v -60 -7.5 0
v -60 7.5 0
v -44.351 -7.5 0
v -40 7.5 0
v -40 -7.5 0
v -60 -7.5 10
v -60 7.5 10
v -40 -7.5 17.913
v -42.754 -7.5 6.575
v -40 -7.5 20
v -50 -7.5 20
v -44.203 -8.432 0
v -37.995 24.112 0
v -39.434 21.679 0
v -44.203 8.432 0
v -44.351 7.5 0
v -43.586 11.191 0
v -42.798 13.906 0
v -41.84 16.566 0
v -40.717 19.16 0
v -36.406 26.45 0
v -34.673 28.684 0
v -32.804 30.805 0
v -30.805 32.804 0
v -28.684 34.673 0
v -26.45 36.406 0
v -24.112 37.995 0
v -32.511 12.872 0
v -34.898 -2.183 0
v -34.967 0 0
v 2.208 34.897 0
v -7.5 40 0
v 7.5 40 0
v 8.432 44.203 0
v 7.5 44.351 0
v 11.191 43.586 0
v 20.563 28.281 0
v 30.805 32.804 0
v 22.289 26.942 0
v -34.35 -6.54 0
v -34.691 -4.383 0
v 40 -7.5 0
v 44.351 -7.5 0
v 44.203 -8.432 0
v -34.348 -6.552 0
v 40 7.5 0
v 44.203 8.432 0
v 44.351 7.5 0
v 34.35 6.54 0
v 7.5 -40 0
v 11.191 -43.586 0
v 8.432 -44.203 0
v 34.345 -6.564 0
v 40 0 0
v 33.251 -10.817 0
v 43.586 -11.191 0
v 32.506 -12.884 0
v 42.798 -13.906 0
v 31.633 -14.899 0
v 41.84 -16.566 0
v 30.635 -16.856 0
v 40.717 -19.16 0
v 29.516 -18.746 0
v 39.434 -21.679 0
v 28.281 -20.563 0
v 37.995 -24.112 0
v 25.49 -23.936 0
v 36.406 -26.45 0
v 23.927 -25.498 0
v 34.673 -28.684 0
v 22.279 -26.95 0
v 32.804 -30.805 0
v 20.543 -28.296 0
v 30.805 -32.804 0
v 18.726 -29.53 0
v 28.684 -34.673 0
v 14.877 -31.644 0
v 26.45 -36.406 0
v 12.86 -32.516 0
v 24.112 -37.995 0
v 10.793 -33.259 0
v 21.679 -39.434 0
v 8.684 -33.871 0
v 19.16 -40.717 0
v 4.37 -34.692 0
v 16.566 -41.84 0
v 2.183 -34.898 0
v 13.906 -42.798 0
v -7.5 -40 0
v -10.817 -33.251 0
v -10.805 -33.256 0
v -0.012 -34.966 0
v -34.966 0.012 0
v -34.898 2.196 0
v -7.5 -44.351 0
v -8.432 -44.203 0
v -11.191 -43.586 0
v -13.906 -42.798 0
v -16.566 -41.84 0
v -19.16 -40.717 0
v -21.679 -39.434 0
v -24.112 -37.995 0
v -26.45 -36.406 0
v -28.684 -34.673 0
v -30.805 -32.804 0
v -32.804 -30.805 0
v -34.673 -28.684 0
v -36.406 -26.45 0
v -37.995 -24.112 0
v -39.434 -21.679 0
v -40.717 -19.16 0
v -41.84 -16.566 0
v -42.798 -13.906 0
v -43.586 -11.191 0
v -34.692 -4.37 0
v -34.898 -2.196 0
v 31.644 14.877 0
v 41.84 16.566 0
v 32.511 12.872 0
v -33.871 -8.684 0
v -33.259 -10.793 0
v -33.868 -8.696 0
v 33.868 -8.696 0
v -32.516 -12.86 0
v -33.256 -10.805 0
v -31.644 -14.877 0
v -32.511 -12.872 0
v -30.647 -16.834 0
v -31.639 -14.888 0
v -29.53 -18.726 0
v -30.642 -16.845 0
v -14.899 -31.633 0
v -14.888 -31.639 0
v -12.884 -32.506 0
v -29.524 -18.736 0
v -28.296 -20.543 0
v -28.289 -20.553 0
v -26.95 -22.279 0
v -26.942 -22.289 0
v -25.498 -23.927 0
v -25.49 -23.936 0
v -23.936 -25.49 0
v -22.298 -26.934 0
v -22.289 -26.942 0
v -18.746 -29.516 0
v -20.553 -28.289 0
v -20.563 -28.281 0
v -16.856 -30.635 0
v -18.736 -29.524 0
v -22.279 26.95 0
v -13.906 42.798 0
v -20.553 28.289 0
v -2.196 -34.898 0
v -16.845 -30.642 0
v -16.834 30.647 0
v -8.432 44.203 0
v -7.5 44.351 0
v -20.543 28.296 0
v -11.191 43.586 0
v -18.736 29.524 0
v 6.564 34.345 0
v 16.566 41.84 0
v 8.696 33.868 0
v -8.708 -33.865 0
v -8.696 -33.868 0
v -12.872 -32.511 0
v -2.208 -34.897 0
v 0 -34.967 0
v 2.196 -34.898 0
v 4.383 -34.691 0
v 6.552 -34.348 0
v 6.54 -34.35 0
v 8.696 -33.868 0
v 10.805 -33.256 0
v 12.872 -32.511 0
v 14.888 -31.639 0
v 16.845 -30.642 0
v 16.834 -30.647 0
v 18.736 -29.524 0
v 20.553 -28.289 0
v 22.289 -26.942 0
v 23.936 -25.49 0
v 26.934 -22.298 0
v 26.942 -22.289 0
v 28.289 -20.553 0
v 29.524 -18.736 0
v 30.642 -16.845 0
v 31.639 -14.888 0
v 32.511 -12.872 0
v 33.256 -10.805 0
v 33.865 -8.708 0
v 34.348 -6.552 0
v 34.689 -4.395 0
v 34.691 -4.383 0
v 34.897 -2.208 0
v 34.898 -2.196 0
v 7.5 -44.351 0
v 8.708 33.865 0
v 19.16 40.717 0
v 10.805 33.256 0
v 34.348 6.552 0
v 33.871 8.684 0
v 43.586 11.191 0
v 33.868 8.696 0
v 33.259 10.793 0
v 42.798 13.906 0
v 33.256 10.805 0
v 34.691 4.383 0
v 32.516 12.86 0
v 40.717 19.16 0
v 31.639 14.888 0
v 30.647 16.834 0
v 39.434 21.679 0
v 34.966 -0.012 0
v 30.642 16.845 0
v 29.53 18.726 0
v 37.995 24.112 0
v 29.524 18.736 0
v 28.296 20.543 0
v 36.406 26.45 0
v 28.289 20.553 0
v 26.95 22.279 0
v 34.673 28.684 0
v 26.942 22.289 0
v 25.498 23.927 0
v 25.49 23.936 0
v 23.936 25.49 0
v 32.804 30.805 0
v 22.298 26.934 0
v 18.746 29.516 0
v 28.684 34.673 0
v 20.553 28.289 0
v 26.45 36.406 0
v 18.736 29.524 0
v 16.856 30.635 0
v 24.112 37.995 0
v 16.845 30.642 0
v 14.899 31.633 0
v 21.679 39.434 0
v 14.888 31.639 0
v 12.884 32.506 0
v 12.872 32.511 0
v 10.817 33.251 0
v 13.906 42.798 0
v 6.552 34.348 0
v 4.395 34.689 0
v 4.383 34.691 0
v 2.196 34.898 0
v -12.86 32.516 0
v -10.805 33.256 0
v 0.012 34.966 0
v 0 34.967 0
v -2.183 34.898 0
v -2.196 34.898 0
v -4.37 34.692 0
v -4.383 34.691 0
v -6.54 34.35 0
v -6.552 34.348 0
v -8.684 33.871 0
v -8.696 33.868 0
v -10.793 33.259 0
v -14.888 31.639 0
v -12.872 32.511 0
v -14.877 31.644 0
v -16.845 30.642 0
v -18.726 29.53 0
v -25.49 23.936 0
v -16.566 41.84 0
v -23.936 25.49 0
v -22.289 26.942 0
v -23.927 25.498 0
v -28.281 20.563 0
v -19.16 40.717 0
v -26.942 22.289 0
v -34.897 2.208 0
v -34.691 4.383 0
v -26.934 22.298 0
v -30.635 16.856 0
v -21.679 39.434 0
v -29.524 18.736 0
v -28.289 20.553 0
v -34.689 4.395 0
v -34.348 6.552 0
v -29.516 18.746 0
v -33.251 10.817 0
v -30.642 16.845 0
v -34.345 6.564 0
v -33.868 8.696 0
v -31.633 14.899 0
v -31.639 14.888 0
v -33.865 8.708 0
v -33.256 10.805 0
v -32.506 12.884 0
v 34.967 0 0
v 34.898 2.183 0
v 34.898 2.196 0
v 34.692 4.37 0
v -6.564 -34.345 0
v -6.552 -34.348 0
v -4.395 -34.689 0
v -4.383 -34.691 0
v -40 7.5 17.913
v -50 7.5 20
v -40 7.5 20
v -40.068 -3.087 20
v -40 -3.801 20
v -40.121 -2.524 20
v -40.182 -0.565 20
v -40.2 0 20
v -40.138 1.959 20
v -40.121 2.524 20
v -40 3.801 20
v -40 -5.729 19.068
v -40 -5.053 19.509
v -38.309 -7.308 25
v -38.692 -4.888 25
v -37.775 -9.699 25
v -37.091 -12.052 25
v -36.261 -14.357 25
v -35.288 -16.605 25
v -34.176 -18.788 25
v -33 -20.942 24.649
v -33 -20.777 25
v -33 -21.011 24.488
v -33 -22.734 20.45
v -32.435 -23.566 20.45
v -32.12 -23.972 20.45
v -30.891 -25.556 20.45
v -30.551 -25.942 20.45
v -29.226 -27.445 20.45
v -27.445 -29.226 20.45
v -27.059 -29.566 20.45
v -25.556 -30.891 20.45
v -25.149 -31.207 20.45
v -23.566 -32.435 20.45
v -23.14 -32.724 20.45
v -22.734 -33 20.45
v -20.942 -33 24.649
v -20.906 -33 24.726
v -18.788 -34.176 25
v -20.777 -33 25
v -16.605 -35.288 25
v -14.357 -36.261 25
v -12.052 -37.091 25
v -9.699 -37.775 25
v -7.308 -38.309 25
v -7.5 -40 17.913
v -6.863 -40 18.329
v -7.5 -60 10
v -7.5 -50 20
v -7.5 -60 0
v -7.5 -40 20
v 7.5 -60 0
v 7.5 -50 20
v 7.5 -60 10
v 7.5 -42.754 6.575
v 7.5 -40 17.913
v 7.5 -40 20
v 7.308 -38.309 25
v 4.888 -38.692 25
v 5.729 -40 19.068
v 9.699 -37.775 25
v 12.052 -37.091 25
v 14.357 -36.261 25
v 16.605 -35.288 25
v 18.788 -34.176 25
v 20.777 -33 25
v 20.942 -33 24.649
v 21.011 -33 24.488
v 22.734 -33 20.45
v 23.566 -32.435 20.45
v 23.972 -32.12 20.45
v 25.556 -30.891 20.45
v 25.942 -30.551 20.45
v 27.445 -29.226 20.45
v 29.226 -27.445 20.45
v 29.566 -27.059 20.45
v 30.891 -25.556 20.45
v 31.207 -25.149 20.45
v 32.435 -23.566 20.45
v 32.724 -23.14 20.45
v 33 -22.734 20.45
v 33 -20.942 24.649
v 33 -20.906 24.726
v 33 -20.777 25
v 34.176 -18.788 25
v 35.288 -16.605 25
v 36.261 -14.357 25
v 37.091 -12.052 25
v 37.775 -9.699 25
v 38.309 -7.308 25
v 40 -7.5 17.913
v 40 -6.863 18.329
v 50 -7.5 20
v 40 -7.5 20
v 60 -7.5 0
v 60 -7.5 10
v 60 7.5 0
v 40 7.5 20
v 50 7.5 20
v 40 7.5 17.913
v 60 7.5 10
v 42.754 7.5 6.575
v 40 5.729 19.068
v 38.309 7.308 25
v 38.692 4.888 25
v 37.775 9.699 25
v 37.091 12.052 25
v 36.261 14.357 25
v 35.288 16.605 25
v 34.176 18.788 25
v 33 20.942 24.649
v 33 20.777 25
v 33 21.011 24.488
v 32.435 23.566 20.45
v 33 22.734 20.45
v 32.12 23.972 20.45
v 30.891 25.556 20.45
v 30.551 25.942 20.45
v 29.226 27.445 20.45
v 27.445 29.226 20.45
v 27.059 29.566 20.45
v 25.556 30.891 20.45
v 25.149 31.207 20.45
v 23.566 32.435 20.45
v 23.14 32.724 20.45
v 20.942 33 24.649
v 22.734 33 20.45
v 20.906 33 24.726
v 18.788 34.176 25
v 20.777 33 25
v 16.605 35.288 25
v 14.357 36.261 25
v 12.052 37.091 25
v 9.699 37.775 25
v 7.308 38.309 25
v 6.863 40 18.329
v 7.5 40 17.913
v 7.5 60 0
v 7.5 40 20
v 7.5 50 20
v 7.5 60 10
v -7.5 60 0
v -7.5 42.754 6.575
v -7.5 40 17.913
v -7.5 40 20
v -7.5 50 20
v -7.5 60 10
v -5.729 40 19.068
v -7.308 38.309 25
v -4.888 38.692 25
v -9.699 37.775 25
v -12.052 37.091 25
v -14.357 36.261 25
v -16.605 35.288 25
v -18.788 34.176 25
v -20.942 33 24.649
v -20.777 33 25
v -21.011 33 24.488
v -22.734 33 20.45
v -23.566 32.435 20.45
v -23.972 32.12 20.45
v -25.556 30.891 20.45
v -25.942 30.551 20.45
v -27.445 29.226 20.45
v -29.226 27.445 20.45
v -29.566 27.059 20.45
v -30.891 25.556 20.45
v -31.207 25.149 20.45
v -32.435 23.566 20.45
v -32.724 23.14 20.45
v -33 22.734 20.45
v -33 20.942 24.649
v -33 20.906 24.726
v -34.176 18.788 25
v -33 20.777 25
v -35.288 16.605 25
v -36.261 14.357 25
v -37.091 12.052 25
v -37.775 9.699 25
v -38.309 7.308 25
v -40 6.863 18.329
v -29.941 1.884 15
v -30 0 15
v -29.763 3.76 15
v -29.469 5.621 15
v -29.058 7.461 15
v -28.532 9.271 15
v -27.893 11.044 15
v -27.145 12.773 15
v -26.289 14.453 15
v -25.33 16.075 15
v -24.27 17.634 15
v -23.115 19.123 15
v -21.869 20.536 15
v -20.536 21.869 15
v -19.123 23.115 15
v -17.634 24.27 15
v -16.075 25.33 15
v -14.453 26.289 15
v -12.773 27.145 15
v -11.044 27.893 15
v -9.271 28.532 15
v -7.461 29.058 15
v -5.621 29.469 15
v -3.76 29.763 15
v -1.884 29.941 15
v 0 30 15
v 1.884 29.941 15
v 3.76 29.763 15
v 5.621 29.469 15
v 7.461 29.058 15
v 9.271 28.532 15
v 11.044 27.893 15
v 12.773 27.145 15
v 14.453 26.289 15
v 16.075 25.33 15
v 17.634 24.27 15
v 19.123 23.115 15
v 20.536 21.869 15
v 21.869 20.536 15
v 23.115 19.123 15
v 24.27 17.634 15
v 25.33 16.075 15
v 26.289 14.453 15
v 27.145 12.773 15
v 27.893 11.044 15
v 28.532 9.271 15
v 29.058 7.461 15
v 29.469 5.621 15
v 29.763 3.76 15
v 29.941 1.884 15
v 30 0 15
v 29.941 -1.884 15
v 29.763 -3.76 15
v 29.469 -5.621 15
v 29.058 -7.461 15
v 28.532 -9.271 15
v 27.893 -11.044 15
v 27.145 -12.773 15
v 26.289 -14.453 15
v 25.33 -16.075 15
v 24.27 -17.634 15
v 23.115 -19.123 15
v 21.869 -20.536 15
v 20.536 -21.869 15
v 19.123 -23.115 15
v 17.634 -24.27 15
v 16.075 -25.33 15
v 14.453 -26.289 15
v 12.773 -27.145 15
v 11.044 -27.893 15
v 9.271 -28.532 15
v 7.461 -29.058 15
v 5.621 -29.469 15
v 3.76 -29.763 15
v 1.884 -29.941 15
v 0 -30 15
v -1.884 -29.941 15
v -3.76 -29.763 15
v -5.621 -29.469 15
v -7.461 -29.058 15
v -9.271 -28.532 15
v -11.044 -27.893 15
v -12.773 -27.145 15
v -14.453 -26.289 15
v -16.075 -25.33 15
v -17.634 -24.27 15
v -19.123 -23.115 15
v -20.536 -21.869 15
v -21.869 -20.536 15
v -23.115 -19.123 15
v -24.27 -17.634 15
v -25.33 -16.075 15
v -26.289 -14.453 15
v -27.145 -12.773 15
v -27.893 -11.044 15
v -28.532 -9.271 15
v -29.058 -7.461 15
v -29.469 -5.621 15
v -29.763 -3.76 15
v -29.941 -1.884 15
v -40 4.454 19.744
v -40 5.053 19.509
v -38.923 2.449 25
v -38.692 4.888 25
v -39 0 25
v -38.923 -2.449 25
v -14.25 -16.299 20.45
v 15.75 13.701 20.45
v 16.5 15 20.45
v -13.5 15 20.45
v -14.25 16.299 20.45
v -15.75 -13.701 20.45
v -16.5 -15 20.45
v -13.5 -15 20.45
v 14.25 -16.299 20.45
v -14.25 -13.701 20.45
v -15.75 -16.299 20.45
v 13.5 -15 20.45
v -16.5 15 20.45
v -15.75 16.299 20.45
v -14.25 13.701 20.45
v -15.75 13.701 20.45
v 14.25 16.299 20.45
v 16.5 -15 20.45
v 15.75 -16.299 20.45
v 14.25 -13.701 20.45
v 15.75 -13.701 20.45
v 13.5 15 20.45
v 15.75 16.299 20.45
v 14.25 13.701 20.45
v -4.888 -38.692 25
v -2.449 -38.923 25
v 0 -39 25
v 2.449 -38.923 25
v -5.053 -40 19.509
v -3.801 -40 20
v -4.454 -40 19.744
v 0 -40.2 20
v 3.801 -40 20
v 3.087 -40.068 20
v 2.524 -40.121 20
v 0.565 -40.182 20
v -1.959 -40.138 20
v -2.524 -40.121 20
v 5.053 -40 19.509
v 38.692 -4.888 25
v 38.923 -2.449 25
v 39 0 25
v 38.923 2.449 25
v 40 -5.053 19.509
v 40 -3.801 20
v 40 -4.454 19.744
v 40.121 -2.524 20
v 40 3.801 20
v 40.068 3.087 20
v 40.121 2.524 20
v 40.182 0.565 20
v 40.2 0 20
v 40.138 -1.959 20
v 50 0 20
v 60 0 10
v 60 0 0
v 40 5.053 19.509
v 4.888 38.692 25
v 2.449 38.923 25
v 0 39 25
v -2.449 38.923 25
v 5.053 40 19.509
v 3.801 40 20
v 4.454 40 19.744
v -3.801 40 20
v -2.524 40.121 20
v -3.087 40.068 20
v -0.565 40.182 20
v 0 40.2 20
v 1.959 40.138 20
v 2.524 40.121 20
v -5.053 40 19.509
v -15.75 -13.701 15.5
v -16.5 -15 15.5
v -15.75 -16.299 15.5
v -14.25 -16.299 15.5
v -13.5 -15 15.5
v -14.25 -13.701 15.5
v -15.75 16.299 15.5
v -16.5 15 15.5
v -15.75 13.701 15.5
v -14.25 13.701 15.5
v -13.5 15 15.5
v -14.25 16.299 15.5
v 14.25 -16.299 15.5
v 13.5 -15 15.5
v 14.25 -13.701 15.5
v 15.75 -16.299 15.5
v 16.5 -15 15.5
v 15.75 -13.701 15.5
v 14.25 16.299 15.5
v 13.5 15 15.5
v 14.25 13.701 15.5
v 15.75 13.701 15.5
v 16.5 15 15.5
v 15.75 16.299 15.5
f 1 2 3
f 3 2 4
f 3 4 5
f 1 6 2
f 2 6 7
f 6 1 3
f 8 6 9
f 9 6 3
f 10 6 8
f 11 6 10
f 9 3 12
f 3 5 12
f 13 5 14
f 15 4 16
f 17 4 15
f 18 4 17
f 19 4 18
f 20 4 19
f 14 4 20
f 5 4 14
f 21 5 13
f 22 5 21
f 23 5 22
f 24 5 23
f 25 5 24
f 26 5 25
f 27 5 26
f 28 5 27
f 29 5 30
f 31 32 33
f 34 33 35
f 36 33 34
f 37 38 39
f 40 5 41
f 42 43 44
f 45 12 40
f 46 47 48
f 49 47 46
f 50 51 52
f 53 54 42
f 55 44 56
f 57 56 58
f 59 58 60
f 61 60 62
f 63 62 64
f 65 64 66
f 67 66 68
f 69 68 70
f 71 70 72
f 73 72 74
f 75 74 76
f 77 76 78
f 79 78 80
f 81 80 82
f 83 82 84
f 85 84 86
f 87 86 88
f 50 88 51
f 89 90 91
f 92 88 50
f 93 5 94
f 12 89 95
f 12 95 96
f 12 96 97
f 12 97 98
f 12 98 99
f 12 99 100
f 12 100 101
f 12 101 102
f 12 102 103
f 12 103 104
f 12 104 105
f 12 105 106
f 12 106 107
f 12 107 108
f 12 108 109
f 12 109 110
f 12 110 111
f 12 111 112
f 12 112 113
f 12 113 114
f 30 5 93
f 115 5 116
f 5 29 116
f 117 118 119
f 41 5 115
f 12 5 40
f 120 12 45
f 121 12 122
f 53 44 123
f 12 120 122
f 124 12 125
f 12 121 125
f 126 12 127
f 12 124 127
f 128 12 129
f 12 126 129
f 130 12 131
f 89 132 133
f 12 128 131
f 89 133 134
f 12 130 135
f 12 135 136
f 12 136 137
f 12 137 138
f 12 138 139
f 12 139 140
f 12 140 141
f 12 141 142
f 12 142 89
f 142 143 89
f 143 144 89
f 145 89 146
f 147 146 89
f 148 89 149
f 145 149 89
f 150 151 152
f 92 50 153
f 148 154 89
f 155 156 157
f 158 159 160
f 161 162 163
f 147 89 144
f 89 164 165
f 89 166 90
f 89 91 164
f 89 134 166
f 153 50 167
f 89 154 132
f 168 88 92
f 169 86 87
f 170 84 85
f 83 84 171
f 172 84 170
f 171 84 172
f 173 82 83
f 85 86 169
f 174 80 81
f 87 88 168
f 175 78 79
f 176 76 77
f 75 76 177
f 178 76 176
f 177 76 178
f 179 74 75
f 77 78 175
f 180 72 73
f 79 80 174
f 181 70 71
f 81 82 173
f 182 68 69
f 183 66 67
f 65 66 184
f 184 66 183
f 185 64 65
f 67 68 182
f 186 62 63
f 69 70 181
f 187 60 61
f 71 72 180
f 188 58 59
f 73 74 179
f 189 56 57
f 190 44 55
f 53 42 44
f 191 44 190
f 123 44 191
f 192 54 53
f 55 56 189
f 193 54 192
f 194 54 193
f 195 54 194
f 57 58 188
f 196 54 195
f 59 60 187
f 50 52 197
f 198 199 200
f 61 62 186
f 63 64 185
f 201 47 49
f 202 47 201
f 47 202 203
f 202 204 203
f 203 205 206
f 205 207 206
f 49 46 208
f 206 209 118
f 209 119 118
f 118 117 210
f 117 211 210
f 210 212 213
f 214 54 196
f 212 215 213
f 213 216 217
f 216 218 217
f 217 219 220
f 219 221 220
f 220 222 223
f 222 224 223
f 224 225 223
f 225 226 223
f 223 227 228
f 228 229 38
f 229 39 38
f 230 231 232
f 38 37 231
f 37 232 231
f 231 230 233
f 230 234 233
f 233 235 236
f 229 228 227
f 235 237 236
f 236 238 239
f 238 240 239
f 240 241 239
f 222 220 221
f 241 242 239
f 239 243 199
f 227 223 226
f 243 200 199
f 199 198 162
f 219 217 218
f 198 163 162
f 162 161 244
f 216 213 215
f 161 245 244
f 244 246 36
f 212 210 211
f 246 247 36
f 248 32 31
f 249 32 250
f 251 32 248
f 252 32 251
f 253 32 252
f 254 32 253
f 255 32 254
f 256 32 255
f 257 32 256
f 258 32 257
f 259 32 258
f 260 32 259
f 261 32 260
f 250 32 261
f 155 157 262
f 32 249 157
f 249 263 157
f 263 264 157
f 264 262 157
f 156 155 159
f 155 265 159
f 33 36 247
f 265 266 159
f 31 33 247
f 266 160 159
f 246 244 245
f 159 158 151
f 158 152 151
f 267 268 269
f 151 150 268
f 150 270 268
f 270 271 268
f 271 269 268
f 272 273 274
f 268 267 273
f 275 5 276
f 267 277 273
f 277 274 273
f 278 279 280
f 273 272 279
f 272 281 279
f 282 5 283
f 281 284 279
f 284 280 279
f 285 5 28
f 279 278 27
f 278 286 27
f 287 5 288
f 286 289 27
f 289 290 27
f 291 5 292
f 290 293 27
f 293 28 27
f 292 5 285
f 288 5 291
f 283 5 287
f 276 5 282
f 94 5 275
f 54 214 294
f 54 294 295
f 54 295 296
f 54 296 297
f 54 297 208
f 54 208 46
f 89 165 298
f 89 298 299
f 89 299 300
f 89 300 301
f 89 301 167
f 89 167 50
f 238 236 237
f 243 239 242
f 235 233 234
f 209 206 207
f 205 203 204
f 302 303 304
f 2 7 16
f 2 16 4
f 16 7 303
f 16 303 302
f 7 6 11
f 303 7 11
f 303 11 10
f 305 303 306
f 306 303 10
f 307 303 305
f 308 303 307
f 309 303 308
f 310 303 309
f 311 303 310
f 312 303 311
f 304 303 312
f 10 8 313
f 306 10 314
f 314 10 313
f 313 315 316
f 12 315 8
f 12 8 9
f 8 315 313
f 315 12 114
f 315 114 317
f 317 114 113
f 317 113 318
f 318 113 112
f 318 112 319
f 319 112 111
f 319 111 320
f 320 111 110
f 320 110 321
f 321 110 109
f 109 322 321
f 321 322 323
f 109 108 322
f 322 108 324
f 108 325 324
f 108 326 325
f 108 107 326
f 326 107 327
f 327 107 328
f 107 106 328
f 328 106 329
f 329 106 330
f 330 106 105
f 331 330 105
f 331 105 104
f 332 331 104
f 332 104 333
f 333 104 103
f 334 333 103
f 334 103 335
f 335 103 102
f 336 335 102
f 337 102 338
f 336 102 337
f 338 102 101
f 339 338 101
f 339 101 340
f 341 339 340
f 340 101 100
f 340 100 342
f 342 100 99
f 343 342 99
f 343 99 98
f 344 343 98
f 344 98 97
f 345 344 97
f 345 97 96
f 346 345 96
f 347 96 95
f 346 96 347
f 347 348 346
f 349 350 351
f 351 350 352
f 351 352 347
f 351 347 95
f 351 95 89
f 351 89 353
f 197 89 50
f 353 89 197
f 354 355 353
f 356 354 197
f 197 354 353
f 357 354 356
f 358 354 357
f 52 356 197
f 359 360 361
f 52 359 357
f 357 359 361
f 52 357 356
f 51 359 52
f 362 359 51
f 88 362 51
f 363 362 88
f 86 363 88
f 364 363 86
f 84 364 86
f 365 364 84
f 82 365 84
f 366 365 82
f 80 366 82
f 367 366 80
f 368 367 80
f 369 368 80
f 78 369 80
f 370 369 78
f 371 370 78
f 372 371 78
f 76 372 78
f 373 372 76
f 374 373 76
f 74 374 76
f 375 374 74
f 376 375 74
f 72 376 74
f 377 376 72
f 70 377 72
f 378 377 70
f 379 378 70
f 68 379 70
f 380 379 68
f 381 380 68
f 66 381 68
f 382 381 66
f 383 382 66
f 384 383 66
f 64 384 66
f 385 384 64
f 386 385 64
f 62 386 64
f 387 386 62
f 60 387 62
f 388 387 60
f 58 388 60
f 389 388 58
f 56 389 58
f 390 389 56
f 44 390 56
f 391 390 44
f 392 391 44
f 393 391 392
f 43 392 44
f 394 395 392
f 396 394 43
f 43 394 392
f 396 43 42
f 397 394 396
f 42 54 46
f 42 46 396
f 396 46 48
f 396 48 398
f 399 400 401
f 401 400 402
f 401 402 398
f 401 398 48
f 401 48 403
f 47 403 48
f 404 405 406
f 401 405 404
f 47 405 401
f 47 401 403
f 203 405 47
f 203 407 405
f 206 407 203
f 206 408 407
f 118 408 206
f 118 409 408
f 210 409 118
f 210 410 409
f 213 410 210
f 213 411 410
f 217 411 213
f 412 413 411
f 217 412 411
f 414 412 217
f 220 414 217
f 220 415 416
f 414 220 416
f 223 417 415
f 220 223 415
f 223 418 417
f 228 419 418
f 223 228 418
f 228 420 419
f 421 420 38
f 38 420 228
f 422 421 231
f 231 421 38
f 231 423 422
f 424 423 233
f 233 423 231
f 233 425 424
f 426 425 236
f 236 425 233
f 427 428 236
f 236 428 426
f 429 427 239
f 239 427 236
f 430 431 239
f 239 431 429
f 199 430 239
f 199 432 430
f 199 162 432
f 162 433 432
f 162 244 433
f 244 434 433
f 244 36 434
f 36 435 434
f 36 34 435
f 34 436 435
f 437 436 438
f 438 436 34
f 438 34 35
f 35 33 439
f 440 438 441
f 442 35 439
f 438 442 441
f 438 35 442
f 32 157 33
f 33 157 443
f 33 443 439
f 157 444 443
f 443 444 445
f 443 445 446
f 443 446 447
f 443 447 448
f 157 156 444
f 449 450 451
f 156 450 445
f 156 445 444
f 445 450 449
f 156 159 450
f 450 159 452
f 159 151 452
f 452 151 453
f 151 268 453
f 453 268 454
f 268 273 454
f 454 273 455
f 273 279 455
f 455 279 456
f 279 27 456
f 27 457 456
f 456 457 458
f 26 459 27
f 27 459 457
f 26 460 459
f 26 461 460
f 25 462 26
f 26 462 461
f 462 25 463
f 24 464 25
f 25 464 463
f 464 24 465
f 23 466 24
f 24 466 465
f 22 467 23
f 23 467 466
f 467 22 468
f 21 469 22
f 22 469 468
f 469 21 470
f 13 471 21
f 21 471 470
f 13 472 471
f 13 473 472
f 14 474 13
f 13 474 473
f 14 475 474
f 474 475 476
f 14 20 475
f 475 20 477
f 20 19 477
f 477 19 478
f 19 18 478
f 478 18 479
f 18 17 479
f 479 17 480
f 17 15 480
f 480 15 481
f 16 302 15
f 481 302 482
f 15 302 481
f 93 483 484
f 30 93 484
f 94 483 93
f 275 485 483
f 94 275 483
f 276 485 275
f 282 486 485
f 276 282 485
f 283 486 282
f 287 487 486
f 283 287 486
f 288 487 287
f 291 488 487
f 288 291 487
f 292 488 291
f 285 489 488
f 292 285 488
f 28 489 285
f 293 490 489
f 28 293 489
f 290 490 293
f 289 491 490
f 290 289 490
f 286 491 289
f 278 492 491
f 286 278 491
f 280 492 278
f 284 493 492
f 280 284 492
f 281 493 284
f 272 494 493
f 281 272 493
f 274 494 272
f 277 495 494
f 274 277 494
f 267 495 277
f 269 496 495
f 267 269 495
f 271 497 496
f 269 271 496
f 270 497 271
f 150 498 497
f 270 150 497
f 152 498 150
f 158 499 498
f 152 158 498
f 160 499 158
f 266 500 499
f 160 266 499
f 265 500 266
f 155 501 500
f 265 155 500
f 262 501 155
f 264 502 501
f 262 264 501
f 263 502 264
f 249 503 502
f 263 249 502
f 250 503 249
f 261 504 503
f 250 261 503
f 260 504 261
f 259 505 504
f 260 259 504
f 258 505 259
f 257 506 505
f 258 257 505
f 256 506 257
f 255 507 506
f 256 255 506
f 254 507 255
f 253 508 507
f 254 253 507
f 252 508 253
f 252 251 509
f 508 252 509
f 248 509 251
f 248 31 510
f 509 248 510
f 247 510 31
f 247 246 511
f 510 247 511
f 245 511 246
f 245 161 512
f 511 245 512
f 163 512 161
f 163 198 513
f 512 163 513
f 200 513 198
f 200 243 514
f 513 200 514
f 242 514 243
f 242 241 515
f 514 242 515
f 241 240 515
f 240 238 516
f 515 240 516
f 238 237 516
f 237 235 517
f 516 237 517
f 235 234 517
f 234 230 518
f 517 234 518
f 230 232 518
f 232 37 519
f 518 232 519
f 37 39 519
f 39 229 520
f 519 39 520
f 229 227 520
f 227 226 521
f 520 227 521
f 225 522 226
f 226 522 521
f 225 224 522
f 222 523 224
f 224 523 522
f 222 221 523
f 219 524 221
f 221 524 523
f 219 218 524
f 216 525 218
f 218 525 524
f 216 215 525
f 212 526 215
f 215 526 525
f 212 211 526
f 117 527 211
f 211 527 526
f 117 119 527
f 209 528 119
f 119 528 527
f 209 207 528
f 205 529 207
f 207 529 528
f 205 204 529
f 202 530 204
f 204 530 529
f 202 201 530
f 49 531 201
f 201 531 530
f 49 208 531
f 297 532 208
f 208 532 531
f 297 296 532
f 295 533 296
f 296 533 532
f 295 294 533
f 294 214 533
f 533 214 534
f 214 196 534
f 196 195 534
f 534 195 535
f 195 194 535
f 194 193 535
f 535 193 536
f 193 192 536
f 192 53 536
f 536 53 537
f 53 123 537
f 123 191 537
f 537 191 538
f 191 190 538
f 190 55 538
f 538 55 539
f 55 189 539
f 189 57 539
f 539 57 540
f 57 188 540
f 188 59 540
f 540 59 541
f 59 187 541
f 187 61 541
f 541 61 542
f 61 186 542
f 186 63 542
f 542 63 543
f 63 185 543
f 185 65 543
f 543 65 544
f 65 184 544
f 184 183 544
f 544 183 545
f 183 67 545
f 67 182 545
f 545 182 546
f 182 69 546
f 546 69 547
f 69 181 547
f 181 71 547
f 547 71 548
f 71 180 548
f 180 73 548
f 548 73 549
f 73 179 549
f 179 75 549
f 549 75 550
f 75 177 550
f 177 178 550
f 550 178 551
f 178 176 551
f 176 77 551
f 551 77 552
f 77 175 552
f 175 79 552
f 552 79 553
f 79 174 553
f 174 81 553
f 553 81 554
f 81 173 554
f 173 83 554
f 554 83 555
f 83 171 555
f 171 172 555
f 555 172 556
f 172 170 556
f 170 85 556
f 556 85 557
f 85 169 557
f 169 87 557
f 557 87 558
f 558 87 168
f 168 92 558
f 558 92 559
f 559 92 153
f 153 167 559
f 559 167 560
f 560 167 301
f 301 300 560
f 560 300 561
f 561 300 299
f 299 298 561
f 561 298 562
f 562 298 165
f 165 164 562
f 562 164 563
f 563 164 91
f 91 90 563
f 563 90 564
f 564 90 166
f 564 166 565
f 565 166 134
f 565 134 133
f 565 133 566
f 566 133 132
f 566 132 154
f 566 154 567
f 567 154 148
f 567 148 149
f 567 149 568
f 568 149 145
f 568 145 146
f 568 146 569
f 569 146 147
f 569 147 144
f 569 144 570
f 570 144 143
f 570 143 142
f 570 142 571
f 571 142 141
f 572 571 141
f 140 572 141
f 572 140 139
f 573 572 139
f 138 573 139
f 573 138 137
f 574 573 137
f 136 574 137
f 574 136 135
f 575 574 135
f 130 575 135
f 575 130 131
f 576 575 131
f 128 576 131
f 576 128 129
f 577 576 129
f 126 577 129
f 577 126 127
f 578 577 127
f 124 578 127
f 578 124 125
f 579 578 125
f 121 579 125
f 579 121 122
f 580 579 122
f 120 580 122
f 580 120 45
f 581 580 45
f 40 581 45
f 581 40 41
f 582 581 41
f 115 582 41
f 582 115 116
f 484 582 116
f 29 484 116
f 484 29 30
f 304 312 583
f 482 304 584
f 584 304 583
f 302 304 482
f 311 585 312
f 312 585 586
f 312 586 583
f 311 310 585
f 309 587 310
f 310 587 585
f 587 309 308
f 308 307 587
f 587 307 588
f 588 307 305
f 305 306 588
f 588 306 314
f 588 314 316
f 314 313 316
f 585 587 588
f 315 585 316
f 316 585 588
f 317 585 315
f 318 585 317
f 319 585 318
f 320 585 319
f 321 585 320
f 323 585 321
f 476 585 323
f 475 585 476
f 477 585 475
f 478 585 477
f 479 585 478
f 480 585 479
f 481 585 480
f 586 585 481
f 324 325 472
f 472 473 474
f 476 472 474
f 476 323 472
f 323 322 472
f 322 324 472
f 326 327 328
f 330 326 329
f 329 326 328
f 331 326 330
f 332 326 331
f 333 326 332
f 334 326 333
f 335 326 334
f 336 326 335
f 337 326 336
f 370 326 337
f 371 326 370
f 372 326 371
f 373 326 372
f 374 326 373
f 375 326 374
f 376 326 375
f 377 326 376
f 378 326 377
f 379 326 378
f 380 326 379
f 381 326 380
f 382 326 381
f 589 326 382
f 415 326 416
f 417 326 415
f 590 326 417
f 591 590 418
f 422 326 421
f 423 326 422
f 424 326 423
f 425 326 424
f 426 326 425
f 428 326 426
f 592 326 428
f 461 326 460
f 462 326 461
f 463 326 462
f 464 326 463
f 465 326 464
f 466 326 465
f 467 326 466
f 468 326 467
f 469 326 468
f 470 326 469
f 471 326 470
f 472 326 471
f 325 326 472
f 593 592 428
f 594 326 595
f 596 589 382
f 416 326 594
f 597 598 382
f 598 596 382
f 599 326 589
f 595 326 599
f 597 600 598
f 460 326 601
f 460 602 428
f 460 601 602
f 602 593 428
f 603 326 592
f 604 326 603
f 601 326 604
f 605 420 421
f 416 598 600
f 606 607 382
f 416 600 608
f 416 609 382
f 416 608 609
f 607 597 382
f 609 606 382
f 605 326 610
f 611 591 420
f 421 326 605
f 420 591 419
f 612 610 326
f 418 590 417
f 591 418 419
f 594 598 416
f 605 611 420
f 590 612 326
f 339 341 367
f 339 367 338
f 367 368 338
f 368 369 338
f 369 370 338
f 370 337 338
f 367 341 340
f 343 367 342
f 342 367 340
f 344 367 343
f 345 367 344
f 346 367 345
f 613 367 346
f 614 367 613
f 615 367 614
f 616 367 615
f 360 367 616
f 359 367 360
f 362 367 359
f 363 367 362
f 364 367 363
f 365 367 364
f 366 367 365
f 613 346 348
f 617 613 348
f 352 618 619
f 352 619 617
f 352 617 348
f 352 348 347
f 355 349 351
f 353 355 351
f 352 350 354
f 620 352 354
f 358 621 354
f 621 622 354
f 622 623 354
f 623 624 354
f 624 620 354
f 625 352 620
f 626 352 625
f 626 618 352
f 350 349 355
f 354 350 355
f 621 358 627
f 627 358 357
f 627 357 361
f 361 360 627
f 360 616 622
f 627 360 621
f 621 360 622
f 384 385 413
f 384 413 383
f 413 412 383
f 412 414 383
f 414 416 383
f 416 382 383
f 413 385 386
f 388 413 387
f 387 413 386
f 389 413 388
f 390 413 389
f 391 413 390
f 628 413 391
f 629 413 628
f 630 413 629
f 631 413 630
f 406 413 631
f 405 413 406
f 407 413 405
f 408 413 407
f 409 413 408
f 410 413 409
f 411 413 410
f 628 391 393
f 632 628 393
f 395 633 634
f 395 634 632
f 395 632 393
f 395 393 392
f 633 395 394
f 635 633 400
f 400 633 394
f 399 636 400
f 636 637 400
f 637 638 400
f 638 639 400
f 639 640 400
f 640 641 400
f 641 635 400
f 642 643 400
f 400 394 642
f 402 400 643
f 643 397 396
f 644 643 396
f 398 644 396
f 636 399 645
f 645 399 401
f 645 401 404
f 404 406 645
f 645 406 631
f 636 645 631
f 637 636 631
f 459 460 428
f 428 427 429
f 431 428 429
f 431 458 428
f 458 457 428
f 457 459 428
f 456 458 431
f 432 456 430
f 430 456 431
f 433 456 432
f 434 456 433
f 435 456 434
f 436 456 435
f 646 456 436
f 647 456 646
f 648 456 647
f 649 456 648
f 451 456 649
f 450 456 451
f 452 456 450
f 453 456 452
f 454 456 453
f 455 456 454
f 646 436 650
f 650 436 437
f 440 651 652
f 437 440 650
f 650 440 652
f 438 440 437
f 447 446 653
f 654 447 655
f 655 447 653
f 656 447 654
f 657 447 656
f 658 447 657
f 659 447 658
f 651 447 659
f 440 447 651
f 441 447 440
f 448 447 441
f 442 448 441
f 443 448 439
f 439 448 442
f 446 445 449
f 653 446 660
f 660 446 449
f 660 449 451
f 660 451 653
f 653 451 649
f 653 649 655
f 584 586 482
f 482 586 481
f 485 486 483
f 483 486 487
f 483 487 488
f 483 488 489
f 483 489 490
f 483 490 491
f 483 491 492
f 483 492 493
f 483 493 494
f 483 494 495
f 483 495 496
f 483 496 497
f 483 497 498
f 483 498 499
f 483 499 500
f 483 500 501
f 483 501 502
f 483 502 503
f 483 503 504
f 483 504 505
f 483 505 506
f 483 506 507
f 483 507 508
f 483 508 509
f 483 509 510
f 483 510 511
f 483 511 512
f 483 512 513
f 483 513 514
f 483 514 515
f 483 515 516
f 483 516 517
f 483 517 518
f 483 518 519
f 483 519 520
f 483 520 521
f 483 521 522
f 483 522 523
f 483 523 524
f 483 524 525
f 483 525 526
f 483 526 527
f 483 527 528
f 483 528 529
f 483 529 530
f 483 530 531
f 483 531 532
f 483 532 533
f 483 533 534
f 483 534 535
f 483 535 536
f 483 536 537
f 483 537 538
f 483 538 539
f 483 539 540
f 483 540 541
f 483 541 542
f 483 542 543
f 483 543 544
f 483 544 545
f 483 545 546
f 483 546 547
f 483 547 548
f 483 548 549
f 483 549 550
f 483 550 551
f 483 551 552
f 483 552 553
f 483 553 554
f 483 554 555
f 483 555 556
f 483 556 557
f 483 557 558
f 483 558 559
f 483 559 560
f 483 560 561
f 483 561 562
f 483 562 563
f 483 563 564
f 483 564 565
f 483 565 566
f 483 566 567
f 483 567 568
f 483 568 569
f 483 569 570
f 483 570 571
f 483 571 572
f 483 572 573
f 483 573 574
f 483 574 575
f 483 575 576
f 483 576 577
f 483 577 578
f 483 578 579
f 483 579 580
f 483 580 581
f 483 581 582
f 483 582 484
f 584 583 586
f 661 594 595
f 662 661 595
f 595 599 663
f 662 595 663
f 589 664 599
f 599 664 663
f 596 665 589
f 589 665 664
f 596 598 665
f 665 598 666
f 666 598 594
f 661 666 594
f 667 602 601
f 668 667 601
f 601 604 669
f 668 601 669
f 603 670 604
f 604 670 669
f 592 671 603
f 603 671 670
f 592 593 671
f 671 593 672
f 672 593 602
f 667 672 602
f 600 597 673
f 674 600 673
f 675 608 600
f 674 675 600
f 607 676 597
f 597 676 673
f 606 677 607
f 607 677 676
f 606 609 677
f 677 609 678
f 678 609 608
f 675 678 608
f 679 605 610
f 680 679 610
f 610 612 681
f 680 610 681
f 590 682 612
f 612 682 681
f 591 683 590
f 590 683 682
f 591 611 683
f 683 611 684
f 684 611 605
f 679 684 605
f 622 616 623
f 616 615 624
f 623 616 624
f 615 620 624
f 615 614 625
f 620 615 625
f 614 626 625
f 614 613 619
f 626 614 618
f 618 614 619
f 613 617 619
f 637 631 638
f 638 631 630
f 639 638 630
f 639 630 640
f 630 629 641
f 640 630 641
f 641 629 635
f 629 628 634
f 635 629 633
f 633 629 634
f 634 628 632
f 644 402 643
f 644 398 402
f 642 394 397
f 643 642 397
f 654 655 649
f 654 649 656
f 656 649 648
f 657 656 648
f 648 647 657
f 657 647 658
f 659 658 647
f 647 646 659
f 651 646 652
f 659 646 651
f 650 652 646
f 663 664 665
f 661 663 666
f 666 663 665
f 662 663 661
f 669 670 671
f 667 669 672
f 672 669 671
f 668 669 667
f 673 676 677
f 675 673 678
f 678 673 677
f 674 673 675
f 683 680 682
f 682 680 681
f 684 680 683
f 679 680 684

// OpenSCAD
//-- General defines
X = 0;
Y = 1;
Z = 2;

//-- User data
body_height = 25;
body_base_radius = 45;
body_top_radius = 39;


body_inner_height = 15;
body_inner_base_radius = 35;
body_inner_top_radius = 30;
r_dist_screws = sqrt( pow(15, 2) + pow(15, 2));


leg = [20, 15, 20];
leg_radius = 10;


module_base = [ 56, 56, 4.5];

drill_h = body_height - body_inner_height -0.5;

//-- Object description
difference()
{
	union()
	{
		//-- Turret body
		difference()
		{
			cylinder( r1 = body_base_radius, r2 = body_top_radius, h = body_height, $fn = 100 );
		
			translate( [0,0,-0.1] )
			cylinder( r1 = body_inner_base_radius, r2 = body_inner_top_radius, h = body_inner_height+0.1, $fn = 100);
		}
		
		//-- Turret legs
		for ( angle = [0:90:360])
			//-- Tranlate legs
			rotate( [0, 0, angle])
			translate( [body_base_radius + leg[Y]/3, 0, leg[Z] / 2.0 ])
			
			//-- Tranformations to place the extruded leg correctly
			rotate( [0, 0, 180])
			translate( -leg / 2)
			rotate( [ 90, 0, 0])
			translate( [0,0,-leg[Y] / 2]) 
			linear_extrude( height = leg[Y], center = true)
			polygon( points=[ [0,0], [leg[X], 0], [ leg[X], leg[Z]], [leg_radius, leg[Z]],
							 [0, leg[Z] - leg_radius]]);
			
	}
	
	union()
	{
		//-- Top drills
		for (angle = [0:90:360]) 
			translate( [r_dist_screws*cos(angle+45), r_dist_screws*sin(angle+45), body_height-drill_h])
			cylinder( r = 3/2, h = drill_h , $fn = 6); 
		
		//-- Module base
		translate( [0, 0, body_height-module_base[Z] / 2])
		minkowski(center = true)
		{
			cylinder( r = 5, h = 0.1, center = true, $fn = 100);
			cube( module_base, center = true );
		}
	}
}
